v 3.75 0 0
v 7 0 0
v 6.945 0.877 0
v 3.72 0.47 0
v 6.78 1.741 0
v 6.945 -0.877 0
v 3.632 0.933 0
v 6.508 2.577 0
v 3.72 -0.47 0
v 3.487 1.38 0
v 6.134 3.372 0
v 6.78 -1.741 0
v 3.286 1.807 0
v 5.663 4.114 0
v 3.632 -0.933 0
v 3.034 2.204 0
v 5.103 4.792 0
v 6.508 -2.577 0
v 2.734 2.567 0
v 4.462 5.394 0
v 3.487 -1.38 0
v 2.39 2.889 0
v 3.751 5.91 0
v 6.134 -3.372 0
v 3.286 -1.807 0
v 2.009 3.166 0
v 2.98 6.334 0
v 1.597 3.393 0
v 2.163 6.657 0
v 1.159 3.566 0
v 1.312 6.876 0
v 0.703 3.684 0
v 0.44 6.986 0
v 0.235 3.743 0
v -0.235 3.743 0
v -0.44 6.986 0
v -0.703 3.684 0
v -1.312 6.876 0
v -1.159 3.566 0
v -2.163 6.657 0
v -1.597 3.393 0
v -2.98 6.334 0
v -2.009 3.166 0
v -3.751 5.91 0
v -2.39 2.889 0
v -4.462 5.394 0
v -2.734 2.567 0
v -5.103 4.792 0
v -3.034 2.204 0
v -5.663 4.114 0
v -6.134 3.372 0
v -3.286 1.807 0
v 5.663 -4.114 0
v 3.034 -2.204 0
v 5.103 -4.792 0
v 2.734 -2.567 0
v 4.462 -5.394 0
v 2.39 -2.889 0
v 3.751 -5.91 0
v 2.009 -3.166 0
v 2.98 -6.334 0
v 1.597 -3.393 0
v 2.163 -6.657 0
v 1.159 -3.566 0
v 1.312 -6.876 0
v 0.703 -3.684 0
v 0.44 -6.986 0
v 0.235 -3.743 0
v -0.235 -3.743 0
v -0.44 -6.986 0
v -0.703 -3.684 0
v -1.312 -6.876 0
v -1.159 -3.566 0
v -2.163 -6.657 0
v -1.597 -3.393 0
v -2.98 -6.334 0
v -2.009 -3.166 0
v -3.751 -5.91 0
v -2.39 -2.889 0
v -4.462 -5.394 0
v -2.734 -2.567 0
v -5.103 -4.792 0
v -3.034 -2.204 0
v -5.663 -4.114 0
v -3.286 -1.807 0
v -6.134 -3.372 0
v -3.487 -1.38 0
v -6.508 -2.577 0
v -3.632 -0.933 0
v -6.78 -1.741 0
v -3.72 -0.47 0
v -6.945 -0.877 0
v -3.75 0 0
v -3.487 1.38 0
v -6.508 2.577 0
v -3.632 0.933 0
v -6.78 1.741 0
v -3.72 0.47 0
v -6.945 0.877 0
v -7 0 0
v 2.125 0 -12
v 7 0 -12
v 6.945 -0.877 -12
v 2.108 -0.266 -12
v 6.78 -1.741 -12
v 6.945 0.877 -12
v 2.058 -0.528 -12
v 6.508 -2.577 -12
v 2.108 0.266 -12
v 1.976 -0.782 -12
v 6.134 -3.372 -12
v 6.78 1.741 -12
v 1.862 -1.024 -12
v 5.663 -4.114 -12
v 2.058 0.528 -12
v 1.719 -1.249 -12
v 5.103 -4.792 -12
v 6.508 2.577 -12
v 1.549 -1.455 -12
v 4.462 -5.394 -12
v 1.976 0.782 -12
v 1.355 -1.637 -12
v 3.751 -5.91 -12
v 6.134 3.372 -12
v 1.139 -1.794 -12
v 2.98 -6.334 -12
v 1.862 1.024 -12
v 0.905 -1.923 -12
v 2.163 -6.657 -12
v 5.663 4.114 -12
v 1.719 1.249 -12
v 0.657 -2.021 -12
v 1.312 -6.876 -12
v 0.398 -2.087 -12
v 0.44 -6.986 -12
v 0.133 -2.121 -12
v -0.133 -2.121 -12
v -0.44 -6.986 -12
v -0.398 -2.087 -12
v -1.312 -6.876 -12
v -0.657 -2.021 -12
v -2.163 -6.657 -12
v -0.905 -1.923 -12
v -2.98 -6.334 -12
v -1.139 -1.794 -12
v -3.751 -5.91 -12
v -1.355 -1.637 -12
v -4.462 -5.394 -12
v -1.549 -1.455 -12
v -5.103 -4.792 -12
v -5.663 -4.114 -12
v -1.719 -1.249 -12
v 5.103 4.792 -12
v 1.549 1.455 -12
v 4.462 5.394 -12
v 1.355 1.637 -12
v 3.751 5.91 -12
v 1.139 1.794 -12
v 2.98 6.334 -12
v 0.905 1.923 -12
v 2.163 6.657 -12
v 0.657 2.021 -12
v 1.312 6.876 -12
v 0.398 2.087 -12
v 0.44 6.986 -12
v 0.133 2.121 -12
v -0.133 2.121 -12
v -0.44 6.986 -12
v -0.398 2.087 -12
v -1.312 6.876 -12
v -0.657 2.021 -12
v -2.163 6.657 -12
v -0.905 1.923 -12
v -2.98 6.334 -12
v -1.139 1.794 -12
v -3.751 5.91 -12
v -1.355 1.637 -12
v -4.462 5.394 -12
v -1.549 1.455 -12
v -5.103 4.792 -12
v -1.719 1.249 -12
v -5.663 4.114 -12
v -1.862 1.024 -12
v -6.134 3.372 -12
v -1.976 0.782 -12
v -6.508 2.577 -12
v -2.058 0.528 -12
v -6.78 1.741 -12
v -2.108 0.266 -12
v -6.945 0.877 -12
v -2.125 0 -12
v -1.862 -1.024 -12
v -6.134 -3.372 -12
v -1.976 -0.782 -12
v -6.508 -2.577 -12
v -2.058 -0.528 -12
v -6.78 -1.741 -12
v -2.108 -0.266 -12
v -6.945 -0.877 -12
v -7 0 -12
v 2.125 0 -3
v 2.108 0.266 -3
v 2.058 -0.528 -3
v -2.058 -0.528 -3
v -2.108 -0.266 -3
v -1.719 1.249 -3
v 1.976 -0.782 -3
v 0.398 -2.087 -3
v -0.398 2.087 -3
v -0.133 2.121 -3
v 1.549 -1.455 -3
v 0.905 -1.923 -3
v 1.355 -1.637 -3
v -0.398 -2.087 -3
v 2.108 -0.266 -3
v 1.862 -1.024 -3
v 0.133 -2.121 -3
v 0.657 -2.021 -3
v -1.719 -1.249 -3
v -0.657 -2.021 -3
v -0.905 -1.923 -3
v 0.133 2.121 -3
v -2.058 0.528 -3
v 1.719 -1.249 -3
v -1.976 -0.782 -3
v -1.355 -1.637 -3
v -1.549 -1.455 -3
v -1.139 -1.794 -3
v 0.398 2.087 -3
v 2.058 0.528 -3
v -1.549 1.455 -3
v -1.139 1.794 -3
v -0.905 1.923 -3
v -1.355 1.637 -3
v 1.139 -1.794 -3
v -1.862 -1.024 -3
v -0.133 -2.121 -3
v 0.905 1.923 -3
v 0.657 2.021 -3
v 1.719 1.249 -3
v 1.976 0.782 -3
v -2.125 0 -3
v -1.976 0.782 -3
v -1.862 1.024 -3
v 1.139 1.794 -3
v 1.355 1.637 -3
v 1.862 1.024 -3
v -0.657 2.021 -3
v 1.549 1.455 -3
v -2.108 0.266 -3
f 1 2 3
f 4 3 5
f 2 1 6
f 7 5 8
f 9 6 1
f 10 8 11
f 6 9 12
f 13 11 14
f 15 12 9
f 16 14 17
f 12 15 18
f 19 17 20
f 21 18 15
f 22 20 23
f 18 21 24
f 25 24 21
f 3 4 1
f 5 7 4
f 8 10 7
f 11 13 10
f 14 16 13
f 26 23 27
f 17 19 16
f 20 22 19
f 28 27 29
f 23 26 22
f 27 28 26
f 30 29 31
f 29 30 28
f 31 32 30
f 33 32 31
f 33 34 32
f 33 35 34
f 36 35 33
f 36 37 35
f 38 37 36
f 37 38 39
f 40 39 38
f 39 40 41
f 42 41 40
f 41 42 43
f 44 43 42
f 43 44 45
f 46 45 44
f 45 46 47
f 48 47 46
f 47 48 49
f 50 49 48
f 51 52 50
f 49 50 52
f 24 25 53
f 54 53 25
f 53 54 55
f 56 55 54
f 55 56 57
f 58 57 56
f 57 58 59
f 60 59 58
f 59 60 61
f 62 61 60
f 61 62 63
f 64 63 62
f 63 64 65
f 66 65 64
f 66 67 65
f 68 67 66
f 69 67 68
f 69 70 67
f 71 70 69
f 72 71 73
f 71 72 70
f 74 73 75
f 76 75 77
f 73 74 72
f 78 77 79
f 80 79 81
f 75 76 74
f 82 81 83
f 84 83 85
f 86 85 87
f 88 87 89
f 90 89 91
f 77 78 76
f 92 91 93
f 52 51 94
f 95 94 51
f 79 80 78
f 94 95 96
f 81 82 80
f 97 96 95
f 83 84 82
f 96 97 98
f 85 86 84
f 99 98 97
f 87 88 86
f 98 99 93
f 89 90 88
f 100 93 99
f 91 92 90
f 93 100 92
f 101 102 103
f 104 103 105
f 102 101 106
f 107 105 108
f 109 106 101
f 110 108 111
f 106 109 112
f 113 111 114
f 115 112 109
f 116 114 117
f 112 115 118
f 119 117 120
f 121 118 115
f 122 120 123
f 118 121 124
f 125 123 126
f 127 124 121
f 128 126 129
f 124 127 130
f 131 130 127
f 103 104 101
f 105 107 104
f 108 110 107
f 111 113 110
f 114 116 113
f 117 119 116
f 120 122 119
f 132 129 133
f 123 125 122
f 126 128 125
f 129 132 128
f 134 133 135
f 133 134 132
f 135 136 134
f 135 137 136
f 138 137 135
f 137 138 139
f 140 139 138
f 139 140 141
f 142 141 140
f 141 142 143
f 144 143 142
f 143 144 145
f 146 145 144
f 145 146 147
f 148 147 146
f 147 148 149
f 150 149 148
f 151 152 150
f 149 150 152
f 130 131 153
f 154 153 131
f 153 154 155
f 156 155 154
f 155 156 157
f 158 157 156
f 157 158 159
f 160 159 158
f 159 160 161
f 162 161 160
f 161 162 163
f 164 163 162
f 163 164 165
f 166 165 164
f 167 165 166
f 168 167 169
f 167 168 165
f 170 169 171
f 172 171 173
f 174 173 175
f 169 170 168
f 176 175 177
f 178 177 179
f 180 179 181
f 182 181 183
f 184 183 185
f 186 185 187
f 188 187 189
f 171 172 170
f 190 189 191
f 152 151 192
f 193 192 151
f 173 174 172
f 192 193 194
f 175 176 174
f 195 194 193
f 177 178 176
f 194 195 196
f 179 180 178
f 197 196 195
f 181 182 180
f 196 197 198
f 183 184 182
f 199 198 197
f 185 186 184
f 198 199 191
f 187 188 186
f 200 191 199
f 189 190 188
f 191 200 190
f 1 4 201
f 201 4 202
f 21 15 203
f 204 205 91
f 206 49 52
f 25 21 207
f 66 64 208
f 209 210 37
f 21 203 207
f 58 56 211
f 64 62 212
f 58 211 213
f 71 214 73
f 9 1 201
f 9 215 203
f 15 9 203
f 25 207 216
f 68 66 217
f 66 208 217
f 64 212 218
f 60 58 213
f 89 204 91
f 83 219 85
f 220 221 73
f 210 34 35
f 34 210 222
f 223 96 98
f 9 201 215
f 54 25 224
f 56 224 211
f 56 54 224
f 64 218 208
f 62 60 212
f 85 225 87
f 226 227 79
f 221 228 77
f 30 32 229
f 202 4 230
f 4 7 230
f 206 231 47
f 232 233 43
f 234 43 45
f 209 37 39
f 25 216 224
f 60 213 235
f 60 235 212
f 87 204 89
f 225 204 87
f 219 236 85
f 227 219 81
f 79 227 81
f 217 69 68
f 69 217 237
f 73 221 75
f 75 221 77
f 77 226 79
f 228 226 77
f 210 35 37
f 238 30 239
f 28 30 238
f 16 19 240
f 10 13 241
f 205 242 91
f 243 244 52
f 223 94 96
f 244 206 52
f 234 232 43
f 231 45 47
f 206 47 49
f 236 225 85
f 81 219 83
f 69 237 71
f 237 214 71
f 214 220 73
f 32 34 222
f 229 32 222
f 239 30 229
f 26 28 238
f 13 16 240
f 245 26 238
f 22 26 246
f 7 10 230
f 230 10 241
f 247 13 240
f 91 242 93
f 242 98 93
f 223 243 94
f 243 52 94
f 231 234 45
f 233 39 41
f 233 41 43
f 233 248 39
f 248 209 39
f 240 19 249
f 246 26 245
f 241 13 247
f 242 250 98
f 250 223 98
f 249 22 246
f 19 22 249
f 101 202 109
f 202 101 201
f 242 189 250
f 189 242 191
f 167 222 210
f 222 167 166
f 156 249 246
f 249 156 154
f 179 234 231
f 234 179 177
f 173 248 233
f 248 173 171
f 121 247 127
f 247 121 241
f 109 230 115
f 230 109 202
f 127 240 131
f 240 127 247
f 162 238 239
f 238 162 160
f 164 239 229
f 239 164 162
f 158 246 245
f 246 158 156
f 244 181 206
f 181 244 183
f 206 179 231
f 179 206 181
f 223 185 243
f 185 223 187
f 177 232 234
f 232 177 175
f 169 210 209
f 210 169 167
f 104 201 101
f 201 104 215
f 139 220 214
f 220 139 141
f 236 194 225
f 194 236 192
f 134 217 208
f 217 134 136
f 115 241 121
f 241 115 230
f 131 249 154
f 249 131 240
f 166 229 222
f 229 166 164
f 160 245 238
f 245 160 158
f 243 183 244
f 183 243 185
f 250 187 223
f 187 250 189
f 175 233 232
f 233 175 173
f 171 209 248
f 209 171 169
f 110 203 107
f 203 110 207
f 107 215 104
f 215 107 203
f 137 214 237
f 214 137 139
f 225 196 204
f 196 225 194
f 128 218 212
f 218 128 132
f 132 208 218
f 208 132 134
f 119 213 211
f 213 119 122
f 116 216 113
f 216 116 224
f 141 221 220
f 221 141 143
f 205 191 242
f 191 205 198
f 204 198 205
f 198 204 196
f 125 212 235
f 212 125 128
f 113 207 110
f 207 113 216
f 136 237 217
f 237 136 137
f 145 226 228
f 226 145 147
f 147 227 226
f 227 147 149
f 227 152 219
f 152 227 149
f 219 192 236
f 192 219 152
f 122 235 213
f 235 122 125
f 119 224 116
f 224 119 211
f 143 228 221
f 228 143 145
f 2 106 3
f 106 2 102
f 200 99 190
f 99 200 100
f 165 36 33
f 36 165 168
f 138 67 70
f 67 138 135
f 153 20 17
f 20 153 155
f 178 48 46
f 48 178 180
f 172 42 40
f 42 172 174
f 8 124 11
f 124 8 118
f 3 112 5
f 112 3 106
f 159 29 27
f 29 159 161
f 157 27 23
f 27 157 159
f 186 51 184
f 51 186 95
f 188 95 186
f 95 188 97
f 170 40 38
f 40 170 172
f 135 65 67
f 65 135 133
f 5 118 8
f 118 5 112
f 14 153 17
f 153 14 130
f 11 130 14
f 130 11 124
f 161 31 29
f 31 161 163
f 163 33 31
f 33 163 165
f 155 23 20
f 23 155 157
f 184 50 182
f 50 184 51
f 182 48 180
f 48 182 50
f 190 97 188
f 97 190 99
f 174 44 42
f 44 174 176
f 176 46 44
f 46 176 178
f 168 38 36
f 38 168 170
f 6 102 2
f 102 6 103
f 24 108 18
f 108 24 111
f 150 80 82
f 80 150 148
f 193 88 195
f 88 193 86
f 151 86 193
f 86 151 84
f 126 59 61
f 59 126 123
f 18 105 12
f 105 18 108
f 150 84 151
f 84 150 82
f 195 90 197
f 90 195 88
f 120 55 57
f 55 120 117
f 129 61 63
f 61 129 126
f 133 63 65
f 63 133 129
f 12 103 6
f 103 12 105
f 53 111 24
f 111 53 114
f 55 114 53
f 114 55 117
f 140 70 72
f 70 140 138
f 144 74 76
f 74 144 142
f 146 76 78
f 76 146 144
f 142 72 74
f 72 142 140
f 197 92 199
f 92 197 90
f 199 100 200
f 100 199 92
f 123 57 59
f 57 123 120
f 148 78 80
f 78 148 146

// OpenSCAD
$fn = 50;


difference() {
	union() {
		translate(v = [0, 0, -12.0000000000]) {
			cylinder(h = 12, r = 7.0000000000);
		}
		cylinder(h = 0, r = 16.0000000000);
	}
	union() {
		translate(v = [0, 0, 0]) {
			rotate(a = [0, 0, 0]) {
				difference() {
					union() {
						#translate(v = [0, 0, -12.0000000000]) {
							cylinder(h = 12, r = 2.0000000000);
						}
						#translate(v = [0, 0, -3]) {
							cylinder(h = 3, r1 = 2.1250000000, r2 = 3.7500000000);
						}
						#translate(v = [0, 0, -12.0000000000]) {
							cylinder(h = 12, r = 2.1250000000);
						}
						#translate(v = [0, 0, -12.0000000000]) {
							cylinder(h = 12, r = 2.0000000000);
						}
					}
					union();
				}
			}
		}
	}
}
